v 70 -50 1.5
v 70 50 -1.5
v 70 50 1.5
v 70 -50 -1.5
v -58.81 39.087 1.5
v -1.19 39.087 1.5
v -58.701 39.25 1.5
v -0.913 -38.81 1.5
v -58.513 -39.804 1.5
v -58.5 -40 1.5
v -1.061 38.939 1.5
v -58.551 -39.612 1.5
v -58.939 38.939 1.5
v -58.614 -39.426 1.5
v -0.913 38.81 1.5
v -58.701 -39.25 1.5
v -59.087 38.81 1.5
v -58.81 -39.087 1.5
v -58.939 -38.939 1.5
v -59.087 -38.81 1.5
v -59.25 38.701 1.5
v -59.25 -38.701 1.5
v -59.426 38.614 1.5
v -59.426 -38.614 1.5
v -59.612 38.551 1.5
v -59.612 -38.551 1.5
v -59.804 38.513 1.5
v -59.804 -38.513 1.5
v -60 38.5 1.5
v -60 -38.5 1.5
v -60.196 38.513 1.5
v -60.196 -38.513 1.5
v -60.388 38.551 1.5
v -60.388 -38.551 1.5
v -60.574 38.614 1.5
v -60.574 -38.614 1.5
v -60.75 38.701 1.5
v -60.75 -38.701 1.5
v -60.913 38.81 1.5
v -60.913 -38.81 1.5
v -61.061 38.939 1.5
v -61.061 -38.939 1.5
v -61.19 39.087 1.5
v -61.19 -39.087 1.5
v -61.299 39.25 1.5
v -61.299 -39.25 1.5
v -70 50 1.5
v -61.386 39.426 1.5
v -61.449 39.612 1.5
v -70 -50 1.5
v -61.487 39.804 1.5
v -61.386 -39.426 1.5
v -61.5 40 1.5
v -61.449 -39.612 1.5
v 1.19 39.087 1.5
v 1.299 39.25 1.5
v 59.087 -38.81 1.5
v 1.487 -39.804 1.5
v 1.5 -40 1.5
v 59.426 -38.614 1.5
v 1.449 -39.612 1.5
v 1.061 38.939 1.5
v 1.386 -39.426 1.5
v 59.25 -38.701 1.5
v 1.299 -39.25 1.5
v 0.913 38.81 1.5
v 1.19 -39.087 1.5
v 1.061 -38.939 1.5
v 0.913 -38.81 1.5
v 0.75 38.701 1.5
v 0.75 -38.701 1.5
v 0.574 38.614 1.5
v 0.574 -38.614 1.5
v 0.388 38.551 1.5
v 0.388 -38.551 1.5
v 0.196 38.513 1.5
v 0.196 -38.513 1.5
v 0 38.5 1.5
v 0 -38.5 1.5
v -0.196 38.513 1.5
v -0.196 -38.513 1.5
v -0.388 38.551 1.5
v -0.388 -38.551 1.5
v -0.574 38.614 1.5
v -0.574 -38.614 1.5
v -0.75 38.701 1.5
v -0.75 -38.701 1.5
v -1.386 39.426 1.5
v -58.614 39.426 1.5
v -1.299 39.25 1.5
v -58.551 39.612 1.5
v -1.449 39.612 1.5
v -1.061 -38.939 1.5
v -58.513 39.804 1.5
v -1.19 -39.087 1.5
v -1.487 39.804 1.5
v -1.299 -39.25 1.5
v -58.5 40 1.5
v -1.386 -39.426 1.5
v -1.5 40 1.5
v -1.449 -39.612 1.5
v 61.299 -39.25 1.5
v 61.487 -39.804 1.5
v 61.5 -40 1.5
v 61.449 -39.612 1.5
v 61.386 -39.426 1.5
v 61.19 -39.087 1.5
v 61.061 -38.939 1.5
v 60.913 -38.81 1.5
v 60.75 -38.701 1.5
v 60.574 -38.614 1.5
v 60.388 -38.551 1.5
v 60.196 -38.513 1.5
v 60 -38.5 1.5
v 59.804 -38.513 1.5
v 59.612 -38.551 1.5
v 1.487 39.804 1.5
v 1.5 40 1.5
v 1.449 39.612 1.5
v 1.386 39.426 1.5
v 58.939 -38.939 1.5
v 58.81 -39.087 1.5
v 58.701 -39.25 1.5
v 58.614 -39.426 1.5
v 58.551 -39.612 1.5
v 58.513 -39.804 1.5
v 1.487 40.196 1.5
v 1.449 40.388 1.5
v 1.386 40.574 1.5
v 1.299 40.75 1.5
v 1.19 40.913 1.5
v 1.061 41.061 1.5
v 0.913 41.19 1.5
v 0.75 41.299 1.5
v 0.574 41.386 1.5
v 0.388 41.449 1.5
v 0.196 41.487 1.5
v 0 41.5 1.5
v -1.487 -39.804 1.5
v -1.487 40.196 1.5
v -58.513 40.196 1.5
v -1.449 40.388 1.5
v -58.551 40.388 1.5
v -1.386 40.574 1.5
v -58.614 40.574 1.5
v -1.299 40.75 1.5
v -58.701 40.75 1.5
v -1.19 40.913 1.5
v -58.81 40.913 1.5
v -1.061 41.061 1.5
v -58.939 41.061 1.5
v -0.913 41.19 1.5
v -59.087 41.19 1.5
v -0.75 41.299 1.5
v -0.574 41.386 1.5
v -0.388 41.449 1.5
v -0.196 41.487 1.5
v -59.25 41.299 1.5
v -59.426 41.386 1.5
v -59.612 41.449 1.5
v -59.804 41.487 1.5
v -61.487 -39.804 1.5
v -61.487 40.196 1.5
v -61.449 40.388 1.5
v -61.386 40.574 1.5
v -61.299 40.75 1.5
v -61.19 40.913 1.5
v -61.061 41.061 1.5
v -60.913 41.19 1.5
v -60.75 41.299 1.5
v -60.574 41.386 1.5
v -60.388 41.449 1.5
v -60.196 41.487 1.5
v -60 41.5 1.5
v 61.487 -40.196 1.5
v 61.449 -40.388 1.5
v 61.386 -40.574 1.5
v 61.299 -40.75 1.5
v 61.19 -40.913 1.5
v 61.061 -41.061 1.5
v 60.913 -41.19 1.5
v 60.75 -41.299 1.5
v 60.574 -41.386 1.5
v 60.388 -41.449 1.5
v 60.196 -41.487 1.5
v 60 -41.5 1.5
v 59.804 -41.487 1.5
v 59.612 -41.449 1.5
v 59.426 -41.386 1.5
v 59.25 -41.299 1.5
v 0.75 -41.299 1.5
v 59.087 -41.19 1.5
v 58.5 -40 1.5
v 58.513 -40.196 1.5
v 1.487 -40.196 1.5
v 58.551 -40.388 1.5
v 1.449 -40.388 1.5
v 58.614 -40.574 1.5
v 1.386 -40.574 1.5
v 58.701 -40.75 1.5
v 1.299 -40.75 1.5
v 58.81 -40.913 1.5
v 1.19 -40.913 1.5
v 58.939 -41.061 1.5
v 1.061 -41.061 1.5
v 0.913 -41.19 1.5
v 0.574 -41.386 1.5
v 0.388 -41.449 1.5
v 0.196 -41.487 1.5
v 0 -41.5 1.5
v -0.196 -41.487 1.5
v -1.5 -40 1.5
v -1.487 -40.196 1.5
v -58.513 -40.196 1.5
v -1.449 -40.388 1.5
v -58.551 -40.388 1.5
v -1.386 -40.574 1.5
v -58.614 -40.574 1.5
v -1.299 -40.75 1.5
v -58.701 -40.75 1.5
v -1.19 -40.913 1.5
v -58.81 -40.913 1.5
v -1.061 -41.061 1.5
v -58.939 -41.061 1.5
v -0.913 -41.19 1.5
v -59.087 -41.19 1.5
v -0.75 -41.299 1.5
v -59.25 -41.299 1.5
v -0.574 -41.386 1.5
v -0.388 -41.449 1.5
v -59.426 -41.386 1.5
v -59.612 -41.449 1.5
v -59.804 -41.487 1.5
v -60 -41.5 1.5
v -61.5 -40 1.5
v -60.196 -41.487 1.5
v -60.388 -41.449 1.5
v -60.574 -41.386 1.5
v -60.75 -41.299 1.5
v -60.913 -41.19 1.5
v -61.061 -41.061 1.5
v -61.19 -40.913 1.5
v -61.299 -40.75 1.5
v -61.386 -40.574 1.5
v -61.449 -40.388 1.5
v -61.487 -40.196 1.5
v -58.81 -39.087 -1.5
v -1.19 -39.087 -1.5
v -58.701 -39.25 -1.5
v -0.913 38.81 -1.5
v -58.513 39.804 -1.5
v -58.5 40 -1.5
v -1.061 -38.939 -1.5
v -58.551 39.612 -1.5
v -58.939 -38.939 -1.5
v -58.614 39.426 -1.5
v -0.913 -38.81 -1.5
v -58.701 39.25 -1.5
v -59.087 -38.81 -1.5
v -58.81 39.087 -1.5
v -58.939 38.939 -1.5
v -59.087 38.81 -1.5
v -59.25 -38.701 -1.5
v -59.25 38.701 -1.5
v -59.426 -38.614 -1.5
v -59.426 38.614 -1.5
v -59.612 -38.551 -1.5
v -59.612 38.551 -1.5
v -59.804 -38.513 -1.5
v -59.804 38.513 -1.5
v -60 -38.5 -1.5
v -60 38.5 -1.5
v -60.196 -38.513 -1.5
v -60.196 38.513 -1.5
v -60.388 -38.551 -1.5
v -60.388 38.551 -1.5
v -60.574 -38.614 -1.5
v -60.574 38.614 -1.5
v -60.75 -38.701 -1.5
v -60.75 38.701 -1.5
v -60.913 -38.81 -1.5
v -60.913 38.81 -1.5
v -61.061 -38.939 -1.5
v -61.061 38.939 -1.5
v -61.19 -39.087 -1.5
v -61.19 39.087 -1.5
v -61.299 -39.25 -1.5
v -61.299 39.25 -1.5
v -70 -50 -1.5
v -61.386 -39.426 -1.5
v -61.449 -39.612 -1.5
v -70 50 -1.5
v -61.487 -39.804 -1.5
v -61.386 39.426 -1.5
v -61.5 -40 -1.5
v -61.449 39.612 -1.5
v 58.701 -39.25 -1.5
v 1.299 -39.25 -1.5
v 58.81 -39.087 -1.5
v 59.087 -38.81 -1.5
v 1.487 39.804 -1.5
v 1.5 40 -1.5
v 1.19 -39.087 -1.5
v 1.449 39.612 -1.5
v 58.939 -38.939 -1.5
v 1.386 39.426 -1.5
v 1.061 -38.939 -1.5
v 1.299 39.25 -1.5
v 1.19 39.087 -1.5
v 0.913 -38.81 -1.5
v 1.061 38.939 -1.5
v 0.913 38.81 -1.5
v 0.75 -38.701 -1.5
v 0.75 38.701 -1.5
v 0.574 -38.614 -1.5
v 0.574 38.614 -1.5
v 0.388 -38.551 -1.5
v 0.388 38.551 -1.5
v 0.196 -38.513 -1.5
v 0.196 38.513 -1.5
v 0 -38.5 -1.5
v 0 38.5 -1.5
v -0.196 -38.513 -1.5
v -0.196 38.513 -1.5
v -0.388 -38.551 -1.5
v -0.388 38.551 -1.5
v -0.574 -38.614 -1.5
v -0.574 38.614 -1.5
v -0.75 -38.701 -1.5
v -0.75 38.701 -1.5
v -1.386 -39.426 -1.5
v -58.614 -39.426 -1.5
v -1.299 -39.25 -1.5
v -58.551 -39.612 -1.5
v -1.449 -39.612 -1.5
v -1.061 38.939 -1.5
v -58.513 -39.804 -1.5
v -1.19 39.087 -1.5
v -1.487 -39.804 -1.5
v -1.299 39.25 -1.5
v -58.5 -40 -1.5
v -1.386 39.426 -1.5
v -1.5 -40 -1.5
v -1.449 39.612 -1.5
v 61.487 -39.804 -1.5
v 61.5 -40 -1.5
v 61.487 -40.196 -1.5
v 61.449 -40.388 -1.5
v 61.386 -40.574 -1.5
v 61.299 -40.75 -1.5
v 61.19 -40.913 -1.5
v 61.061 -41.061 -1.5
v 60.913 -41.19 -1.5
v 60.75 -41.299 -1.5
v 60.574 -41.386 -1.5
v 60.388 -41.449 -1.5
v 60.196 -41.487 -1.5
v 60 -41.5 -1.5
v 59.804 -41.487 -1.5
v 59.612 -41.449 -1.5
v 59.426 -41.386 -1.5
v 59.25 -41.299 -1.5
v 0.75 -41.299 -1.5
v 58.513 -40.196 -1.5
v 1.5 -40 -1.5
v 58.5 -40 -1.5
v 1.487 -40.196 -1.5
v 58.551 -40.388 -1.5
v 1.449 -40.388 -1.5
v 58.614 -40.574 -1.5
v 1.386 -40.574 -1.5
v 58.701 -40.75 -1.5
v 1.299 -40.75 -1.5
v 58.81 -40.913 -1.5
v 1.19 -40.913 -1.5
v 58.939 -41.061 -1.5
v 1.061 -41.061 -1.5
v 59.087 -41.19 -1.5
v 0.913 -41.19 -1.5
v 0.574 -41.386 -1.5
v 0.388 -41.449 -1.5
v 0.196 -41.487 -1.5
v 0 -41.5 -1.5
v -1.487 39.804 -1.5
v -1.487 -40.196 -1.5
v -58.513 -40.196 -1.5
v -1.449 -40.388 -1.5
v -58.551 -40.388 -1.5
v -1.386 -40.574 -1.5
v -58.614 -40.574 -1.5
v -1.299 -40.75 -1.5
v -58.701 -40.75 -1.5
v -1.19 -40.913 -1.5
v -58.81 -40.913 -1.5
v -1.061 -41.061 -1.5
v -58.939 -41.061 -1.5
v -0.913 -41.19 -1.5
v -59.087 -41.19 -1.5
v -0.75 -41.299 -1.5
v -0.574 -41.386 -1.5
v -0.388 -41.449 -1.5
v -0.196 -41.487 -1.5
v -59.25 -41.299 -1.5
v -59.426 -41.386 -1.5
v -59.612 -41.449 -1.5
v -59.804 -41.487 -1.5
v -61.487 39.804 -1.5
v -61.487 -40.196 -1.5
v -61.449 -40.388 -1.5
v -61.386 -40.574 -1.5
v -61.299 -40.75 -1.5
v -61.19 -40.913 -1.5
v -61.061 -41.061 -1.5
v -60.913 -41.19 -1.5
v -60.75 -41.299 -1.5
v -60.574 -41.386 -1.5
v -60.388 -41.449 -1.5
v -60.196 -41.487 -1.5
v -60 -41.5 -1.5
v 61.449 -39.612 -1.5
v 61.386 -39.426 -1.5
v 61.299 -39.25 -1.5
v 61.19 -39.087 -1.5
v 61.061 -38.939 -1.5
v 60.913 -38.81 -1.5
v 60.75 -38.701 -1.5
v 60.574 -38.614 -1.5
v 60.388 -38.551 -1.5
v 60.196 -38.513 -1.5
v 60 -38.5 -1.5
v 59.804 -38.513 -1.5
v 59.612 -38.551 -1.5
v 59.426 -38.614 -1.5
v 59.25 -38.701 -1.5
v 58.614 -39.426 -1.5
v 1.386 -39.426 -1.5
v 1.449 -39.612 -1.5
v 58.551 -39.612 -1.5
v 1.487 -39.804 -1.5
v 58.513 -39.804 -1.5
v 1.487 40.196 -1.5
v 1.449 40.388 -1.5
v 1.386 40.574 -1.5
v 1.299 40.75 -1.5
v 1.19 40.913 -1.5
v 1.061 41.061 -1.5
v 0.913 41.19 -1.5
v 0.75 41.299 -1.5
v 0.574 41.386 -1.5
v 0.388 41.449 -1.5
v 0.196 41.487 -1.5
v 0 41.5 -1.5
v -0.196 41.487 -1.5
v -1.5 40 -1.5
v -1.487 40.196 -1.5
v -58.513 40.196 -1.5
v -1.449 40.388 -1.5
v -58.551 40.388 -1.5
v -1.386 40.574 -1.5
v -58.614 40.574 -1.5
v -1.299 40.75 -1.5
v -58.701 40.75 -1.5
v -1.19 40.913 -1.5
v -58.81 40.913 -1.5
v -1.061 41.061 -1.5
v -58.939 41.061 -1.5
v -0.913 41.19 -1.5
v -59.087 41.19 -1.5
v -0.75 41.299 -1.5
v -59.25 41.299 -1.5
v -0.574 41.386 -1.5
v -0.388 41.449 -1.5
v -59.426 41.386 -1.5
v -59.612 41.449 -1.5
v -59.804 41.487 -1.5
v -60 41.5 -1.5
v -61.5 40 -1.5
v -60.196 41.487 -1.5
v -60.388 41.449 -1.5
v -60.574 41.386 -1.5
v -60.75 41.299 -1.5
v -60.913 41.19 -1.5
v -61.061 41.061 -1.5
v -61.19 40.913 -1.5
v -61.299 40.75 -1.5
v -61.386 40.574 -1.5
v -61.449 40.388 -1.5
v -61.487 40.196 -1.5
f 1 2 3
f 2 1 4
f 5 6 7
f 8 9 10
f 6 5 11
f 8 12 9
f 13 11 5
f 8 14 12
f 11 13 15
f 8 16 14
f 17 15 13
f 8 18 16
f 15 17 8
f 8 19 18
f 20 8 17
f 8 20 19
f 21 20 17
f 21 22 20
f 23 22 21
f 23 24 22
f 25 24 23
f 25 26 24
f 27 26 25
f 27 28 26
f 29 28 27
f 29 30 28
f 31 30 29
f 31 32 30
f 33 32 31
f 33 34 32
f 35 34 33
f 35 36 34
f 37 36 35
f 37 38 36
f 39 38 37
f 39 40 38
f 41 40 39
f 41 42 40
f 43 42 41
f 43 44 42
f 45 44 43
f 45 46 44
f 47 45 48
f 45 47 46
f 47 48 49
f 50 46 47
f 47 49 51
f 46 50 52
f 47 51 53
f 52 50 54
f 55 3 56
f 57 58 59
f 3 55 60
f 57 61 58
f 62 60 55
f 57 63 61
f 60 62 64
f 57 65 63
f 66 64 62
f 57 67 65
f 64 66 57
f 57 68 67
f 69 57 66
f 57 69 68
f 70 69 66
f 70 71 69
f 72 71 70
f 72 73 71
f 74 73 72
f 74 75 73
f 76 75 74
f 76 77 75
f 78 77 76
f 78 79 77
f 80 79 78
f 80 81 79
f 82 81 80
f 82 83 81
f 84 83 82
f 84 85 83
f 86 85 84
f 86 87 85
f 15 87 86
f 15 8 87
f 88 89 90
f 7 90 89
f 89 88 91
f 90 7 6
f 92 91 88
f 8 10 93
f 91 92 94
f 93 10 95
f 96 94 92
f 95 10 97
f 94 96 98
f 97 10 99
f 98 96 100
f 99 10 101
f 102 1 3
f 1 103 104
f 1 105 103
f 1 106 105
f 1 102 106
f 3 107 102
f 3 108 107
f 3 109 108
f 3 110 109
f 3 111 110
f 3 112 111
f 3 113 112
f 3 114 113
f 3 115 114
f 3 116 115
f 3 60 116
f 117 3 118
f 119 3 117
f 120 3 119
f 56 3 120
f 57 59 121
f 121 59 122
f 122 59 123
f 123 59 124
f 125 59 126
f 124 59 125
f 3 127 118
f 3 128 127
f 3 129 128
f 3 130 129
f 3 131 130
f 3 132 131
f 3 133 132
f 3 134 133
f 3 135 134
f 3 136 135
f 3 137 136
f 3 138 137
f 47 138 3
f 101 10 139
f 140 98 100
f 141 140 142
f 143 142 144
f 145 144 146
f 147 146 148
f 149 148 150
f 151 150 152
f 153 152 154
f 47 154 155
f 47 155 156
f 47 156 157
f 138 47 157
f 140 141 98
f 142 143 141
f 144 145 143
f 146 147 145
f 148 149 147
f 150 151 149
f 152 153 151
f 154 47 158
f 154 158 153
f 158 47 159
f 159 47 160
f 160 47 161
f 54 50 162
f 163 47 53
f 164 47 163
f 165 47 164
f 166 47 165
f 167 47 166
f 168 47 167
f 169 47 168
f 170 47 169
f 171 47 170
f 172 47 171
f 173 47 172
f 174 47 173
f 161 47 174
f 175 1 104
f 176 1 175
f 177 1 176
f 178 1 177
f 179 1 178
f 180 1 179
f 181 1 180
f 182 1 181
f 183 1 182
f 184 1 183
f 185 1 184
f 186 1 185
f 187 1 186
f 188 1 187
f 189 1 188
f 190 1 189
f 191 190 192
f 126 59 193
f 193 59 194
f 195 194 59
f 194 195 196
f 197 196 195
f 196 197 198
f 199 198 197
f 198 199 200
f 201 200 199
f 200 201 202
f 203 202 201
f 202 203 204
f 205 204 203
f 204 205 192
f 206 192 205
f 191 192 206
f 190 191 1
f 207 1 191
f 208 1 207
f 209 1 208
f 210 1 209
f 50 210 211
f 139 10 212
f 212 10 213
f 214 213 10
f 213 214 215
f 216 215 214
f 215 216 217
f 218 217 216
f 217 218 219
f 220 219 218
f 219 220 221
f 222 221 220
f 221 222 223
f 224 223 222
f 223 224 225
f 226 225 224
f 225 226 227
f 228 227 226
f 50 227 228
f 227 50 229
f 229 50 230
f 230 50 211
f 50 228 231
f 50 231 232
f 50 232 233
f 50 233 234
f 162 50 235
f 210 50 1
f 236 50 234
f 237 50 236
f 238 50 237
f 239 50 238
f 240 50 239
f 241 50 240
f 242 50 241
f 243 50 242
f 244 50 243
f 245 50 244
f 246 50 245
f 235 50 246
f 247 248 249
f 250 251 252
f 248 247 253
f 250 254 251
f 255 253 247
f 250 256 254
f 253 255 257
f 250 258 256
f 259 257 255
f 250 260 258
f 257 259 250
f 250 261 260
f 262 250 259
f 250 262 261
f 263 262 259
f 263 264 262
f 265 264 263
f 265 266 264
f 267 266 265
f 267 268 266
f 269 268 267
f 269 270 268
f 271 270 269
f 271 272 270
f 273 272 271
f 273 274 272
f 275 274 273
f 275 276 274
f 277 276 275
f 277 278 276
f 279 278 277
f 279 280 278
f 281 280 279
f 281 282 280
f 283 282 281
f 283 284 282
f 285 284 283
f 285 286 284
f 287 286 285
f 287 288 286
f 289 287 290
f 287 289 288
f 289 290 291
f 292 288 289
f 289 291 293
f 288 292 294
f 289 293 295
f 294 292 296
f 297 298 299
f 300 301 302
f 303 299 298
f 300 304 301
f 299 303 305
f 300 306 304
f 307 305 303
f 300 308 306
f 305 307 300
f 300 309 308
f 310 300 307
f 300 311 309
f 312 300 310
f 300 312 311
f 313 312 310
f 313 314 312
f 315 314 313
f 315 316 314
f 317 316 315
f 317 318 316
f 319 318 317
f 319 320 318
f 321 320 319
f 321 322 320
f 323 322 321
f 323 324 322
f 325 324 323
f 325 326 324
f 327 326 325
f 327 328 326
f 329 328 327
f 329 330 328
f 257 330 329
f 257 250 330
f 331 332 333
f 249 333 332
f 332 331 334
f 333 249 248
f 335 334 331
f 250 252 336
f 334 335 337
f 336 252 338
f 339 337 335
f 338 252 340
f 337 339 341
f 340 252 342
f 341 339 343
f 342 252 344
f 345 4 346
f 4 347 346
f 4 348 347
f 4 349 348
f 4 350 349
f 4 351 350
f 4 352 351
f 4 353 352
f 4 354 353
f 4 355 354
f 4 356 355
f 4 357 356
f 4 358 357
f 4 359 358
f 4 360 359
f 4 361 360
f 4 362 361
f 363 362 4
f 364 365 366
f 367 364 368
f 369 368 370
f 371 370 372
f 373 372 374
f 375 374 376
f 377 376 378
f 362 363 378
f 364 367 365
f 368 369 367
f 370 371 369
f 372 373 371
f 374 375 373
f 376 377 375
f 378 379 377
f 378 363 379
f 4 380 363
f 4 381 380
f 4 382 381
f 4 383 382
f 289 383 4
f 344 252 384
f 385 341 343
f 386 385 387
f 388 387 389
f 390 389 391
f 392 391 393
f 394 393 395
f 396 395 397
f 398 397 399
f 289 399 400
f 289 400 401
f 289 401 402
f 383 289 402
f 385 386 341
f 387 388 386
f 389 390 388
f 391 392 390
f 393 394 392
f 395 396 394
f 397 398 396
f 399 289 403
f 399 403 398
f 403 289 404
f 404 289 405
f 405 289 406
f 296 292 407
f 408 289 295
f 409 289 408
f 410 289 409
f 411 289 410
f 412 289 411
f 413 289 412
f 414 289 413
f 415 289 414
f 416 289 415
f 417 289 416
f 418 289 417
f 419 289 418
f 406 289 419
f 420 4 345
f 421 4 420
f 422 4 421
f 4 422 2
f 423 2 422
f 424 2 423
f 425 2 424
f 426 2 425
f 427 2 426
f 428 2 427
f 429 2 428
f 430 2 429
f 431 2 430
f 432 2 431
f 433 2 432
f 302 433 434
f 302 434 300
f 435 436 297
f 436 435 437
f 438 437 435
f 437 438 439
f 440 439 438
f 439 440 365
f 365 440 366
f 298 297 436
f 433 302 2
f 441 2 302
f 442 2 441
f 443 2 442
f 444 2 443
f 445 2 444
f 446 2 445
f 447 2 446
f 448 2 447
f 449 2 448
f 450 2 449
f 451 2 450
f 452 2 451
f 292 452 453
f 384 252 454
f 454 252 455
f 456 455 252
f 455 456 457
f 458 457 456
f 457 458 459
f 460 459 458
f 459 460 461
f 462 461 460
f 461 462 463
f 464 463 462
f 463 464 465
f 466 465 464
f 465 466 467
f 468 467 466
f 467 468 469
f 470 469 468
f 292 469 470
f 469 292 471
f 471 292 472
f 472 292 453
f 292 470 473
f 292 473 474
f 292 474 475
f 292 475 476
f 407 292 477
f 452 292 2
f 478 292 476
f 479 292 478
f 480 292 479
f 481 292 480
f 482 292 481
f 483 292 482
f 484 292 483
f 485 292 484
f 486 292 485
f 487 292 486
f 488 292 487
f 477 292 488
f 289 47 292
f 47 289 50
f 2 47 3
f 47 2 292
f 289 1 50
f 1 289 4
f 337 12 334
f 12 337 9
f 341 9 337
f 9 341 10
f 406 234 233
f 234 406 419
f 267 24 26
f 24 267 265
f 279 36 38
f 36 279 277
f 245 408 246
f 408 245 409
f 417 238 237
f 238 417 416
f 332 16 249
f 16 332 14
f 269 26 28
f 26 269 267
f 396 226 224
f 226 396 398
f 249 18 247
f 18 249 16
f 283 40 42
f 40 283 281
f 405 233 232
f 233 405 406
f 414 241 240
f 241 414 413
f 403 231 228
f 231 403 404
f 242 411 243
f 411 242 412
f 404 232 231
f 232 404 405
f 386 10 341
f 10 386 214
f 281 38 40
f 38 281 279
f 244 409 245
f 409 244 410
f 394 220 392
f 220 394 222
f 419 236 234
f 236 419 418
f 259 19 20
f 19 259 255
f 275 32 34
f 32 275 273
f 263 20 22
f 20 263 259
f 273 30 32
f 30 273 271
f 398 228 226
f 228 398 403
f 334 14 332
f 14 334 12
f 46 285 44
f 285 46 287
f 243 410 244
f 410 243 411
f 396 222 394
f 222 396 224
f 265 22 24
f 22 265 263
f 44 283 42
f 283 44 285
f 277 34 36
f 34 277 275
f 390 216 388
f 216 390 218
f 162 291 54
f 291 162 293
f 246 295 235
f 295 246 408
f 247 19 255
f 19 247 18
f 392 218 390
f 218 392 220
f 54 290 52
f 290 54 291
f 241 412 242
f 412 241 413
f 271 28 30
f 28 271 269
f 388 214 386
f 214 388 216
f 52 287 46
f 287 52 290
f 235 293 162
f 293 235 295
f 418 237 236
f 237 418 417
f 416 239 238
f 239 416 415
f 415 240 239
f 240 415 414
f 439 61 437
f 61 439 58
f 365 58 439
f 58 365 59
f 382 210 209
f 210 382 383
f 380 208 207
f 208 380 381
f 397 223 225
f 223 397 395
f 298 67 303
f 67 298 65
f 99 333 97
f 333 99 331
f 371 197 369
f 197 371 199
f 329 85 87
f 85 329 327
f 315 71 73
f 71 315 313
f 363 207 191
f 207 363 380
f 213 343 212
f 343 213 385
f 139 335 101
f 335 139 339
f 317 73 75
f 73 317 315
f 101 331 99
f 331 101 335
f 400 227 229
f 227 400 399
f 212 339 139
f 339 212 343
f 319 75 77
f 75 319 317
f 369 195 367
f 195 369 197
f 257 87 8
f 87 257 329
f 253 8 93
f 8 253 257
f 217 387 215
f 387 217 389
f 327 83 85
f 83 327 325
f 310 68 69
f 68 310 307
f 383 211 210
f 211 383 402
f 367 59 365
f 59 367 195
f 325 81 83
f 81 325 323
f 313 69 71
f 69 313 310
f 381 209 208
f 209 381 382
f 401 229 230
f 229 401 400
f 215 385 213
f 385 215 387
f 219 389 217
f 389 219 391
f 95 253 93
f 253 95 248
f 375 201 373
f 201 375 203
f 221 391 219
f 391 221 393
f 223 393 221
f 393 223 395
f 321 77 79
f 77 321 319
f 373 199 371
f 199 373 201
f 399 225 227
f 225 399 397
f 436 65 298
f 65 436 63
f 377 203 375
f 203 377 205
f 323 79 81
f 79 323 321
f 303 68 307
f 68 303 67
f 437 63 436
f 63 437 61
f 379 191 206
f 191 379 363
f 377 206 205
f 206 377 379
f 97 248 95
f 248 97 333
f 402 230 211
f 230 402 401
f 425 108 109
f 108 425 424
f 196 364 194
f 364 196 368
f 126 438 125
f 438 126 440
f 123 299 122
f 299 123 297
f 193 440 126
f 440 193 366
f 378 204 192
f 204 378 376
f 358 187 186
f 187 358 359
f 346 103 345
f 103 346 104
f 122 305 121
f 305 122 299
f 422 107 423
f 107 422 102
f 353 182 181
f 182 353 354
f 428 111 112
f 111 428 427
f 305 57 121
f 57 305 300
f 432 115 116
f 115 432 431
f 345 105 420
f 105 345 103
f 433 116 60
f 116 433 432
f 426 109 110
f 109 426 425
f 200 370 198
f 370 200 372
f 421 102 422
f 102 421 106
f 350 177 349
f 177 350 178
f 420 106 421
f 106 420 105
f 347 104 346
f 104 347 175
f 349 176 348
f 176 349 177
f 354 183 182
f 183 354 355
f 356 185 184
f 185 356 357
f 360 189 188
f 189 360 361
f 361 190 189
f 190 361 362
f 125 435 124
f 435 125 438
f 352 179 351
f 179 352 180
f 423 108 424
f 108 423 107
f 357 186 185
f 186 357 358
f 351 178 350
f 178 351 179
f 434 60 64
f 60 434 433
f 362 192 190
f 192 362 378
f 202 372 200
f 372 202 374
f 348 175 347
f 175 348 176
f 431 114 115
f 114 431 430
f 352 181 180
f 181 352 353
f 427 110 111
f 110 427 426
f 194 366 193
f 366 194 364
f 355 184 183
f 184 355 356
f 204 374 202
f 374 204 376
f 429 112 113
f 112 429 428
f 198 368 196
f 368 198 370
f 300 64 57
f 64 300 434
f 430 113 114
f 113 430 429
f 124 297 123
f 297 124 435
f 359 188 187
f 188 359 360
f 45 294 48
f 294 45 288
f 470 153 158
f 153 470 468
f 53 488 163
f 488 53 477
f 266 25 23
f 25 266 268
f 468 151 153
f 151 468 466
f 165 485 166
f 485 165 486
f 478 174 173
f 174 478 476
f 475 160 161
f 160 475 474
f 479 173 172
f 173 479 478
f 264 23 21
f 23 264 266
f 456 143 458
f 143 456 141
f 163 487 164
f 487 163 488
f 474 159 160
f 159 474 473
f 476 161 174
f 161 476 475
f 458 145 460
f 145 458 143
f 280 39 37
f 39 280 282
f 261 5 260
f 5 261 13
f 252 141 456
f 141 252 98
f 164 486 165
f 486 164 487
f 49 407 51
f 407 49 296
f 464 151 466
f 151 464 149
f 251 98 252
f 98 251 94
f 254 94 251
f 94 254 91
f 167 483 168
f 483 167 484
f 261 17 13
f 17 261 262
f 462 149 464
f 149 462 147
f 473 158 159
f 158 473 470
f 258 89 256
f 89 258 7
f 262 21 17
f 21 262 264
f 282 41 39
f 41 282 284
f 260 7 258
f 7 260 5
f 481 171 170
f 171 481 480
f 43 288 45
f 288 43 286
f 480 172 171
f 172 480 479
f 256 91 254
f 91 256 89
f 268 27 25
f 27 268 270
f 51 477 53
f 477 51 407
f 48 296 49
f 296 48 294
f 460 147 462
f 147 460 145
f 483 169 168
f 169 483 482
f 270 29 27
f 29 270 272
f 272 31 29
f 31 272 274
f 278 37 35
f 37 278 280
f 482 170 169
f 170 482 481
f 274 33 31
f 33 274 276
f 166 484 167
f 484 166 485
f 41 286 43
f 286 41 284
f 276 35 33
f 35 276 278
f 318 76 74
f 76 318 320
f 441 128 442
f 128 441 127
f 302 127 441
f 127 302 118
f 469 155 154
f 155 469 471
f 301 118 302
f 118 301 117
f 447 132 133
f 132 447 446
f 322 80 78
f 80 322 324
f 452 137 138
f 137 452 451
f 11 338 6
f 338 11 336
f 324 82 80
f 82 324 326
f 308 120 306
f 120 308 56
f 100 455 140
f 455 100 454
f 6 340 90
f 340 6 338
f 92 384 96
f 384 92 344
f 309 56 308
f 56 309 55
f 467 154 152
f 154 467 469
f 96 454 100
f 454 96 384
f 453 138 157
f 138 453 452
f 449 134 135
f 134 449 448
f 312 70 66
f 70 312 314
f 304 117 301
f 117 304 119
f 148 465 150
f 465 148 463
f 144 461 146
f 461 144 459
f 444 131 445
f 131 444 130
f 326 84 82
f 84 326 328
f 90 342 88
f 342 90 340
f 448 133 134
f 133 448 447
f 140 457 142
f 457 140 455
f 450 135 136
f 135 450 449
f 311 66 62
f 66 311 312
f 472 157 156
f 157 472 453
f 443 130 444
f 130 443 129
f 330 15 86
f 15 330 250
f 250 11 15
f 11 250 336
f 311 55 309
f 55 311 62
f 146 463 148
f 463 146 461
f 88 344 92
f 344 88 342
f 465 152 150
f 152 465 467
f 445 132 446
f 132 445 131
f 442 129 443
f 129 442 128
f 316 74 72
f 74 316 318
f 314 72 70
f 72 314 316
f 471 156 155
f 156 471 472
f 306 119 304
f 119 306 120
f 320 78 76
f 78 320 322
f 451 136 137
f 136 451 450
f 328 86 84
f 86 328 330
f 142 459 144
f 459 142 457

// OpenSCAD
// ========================================
// a 140 x 100 x 3 mm plate with five 3 mm holes
// NeuroCAD canonical IR; dimensions are millimetres
// ========================================
$fn = 48;

difference() {
  cube(size=[140, 100, 3], center=true);
  translate([-60, -40, 0]) {
    cylinder(r=1.5, h=5, center=true);
  }
  translate([0, -40, 0]) {
    cylinder(r=1.5, h=5, center=true);
  }
  translate([60, -40, 0]) {
    cylinder(r=1.5, h=5, center=true);
  }
  translate([-60, 40, 0]) {
    cylinder(r=1.5, h=5, center=true);
  }
  translate([0, 40, 0]) {
    cylinder(r=1.5, h=5, center=true);
  }
}
